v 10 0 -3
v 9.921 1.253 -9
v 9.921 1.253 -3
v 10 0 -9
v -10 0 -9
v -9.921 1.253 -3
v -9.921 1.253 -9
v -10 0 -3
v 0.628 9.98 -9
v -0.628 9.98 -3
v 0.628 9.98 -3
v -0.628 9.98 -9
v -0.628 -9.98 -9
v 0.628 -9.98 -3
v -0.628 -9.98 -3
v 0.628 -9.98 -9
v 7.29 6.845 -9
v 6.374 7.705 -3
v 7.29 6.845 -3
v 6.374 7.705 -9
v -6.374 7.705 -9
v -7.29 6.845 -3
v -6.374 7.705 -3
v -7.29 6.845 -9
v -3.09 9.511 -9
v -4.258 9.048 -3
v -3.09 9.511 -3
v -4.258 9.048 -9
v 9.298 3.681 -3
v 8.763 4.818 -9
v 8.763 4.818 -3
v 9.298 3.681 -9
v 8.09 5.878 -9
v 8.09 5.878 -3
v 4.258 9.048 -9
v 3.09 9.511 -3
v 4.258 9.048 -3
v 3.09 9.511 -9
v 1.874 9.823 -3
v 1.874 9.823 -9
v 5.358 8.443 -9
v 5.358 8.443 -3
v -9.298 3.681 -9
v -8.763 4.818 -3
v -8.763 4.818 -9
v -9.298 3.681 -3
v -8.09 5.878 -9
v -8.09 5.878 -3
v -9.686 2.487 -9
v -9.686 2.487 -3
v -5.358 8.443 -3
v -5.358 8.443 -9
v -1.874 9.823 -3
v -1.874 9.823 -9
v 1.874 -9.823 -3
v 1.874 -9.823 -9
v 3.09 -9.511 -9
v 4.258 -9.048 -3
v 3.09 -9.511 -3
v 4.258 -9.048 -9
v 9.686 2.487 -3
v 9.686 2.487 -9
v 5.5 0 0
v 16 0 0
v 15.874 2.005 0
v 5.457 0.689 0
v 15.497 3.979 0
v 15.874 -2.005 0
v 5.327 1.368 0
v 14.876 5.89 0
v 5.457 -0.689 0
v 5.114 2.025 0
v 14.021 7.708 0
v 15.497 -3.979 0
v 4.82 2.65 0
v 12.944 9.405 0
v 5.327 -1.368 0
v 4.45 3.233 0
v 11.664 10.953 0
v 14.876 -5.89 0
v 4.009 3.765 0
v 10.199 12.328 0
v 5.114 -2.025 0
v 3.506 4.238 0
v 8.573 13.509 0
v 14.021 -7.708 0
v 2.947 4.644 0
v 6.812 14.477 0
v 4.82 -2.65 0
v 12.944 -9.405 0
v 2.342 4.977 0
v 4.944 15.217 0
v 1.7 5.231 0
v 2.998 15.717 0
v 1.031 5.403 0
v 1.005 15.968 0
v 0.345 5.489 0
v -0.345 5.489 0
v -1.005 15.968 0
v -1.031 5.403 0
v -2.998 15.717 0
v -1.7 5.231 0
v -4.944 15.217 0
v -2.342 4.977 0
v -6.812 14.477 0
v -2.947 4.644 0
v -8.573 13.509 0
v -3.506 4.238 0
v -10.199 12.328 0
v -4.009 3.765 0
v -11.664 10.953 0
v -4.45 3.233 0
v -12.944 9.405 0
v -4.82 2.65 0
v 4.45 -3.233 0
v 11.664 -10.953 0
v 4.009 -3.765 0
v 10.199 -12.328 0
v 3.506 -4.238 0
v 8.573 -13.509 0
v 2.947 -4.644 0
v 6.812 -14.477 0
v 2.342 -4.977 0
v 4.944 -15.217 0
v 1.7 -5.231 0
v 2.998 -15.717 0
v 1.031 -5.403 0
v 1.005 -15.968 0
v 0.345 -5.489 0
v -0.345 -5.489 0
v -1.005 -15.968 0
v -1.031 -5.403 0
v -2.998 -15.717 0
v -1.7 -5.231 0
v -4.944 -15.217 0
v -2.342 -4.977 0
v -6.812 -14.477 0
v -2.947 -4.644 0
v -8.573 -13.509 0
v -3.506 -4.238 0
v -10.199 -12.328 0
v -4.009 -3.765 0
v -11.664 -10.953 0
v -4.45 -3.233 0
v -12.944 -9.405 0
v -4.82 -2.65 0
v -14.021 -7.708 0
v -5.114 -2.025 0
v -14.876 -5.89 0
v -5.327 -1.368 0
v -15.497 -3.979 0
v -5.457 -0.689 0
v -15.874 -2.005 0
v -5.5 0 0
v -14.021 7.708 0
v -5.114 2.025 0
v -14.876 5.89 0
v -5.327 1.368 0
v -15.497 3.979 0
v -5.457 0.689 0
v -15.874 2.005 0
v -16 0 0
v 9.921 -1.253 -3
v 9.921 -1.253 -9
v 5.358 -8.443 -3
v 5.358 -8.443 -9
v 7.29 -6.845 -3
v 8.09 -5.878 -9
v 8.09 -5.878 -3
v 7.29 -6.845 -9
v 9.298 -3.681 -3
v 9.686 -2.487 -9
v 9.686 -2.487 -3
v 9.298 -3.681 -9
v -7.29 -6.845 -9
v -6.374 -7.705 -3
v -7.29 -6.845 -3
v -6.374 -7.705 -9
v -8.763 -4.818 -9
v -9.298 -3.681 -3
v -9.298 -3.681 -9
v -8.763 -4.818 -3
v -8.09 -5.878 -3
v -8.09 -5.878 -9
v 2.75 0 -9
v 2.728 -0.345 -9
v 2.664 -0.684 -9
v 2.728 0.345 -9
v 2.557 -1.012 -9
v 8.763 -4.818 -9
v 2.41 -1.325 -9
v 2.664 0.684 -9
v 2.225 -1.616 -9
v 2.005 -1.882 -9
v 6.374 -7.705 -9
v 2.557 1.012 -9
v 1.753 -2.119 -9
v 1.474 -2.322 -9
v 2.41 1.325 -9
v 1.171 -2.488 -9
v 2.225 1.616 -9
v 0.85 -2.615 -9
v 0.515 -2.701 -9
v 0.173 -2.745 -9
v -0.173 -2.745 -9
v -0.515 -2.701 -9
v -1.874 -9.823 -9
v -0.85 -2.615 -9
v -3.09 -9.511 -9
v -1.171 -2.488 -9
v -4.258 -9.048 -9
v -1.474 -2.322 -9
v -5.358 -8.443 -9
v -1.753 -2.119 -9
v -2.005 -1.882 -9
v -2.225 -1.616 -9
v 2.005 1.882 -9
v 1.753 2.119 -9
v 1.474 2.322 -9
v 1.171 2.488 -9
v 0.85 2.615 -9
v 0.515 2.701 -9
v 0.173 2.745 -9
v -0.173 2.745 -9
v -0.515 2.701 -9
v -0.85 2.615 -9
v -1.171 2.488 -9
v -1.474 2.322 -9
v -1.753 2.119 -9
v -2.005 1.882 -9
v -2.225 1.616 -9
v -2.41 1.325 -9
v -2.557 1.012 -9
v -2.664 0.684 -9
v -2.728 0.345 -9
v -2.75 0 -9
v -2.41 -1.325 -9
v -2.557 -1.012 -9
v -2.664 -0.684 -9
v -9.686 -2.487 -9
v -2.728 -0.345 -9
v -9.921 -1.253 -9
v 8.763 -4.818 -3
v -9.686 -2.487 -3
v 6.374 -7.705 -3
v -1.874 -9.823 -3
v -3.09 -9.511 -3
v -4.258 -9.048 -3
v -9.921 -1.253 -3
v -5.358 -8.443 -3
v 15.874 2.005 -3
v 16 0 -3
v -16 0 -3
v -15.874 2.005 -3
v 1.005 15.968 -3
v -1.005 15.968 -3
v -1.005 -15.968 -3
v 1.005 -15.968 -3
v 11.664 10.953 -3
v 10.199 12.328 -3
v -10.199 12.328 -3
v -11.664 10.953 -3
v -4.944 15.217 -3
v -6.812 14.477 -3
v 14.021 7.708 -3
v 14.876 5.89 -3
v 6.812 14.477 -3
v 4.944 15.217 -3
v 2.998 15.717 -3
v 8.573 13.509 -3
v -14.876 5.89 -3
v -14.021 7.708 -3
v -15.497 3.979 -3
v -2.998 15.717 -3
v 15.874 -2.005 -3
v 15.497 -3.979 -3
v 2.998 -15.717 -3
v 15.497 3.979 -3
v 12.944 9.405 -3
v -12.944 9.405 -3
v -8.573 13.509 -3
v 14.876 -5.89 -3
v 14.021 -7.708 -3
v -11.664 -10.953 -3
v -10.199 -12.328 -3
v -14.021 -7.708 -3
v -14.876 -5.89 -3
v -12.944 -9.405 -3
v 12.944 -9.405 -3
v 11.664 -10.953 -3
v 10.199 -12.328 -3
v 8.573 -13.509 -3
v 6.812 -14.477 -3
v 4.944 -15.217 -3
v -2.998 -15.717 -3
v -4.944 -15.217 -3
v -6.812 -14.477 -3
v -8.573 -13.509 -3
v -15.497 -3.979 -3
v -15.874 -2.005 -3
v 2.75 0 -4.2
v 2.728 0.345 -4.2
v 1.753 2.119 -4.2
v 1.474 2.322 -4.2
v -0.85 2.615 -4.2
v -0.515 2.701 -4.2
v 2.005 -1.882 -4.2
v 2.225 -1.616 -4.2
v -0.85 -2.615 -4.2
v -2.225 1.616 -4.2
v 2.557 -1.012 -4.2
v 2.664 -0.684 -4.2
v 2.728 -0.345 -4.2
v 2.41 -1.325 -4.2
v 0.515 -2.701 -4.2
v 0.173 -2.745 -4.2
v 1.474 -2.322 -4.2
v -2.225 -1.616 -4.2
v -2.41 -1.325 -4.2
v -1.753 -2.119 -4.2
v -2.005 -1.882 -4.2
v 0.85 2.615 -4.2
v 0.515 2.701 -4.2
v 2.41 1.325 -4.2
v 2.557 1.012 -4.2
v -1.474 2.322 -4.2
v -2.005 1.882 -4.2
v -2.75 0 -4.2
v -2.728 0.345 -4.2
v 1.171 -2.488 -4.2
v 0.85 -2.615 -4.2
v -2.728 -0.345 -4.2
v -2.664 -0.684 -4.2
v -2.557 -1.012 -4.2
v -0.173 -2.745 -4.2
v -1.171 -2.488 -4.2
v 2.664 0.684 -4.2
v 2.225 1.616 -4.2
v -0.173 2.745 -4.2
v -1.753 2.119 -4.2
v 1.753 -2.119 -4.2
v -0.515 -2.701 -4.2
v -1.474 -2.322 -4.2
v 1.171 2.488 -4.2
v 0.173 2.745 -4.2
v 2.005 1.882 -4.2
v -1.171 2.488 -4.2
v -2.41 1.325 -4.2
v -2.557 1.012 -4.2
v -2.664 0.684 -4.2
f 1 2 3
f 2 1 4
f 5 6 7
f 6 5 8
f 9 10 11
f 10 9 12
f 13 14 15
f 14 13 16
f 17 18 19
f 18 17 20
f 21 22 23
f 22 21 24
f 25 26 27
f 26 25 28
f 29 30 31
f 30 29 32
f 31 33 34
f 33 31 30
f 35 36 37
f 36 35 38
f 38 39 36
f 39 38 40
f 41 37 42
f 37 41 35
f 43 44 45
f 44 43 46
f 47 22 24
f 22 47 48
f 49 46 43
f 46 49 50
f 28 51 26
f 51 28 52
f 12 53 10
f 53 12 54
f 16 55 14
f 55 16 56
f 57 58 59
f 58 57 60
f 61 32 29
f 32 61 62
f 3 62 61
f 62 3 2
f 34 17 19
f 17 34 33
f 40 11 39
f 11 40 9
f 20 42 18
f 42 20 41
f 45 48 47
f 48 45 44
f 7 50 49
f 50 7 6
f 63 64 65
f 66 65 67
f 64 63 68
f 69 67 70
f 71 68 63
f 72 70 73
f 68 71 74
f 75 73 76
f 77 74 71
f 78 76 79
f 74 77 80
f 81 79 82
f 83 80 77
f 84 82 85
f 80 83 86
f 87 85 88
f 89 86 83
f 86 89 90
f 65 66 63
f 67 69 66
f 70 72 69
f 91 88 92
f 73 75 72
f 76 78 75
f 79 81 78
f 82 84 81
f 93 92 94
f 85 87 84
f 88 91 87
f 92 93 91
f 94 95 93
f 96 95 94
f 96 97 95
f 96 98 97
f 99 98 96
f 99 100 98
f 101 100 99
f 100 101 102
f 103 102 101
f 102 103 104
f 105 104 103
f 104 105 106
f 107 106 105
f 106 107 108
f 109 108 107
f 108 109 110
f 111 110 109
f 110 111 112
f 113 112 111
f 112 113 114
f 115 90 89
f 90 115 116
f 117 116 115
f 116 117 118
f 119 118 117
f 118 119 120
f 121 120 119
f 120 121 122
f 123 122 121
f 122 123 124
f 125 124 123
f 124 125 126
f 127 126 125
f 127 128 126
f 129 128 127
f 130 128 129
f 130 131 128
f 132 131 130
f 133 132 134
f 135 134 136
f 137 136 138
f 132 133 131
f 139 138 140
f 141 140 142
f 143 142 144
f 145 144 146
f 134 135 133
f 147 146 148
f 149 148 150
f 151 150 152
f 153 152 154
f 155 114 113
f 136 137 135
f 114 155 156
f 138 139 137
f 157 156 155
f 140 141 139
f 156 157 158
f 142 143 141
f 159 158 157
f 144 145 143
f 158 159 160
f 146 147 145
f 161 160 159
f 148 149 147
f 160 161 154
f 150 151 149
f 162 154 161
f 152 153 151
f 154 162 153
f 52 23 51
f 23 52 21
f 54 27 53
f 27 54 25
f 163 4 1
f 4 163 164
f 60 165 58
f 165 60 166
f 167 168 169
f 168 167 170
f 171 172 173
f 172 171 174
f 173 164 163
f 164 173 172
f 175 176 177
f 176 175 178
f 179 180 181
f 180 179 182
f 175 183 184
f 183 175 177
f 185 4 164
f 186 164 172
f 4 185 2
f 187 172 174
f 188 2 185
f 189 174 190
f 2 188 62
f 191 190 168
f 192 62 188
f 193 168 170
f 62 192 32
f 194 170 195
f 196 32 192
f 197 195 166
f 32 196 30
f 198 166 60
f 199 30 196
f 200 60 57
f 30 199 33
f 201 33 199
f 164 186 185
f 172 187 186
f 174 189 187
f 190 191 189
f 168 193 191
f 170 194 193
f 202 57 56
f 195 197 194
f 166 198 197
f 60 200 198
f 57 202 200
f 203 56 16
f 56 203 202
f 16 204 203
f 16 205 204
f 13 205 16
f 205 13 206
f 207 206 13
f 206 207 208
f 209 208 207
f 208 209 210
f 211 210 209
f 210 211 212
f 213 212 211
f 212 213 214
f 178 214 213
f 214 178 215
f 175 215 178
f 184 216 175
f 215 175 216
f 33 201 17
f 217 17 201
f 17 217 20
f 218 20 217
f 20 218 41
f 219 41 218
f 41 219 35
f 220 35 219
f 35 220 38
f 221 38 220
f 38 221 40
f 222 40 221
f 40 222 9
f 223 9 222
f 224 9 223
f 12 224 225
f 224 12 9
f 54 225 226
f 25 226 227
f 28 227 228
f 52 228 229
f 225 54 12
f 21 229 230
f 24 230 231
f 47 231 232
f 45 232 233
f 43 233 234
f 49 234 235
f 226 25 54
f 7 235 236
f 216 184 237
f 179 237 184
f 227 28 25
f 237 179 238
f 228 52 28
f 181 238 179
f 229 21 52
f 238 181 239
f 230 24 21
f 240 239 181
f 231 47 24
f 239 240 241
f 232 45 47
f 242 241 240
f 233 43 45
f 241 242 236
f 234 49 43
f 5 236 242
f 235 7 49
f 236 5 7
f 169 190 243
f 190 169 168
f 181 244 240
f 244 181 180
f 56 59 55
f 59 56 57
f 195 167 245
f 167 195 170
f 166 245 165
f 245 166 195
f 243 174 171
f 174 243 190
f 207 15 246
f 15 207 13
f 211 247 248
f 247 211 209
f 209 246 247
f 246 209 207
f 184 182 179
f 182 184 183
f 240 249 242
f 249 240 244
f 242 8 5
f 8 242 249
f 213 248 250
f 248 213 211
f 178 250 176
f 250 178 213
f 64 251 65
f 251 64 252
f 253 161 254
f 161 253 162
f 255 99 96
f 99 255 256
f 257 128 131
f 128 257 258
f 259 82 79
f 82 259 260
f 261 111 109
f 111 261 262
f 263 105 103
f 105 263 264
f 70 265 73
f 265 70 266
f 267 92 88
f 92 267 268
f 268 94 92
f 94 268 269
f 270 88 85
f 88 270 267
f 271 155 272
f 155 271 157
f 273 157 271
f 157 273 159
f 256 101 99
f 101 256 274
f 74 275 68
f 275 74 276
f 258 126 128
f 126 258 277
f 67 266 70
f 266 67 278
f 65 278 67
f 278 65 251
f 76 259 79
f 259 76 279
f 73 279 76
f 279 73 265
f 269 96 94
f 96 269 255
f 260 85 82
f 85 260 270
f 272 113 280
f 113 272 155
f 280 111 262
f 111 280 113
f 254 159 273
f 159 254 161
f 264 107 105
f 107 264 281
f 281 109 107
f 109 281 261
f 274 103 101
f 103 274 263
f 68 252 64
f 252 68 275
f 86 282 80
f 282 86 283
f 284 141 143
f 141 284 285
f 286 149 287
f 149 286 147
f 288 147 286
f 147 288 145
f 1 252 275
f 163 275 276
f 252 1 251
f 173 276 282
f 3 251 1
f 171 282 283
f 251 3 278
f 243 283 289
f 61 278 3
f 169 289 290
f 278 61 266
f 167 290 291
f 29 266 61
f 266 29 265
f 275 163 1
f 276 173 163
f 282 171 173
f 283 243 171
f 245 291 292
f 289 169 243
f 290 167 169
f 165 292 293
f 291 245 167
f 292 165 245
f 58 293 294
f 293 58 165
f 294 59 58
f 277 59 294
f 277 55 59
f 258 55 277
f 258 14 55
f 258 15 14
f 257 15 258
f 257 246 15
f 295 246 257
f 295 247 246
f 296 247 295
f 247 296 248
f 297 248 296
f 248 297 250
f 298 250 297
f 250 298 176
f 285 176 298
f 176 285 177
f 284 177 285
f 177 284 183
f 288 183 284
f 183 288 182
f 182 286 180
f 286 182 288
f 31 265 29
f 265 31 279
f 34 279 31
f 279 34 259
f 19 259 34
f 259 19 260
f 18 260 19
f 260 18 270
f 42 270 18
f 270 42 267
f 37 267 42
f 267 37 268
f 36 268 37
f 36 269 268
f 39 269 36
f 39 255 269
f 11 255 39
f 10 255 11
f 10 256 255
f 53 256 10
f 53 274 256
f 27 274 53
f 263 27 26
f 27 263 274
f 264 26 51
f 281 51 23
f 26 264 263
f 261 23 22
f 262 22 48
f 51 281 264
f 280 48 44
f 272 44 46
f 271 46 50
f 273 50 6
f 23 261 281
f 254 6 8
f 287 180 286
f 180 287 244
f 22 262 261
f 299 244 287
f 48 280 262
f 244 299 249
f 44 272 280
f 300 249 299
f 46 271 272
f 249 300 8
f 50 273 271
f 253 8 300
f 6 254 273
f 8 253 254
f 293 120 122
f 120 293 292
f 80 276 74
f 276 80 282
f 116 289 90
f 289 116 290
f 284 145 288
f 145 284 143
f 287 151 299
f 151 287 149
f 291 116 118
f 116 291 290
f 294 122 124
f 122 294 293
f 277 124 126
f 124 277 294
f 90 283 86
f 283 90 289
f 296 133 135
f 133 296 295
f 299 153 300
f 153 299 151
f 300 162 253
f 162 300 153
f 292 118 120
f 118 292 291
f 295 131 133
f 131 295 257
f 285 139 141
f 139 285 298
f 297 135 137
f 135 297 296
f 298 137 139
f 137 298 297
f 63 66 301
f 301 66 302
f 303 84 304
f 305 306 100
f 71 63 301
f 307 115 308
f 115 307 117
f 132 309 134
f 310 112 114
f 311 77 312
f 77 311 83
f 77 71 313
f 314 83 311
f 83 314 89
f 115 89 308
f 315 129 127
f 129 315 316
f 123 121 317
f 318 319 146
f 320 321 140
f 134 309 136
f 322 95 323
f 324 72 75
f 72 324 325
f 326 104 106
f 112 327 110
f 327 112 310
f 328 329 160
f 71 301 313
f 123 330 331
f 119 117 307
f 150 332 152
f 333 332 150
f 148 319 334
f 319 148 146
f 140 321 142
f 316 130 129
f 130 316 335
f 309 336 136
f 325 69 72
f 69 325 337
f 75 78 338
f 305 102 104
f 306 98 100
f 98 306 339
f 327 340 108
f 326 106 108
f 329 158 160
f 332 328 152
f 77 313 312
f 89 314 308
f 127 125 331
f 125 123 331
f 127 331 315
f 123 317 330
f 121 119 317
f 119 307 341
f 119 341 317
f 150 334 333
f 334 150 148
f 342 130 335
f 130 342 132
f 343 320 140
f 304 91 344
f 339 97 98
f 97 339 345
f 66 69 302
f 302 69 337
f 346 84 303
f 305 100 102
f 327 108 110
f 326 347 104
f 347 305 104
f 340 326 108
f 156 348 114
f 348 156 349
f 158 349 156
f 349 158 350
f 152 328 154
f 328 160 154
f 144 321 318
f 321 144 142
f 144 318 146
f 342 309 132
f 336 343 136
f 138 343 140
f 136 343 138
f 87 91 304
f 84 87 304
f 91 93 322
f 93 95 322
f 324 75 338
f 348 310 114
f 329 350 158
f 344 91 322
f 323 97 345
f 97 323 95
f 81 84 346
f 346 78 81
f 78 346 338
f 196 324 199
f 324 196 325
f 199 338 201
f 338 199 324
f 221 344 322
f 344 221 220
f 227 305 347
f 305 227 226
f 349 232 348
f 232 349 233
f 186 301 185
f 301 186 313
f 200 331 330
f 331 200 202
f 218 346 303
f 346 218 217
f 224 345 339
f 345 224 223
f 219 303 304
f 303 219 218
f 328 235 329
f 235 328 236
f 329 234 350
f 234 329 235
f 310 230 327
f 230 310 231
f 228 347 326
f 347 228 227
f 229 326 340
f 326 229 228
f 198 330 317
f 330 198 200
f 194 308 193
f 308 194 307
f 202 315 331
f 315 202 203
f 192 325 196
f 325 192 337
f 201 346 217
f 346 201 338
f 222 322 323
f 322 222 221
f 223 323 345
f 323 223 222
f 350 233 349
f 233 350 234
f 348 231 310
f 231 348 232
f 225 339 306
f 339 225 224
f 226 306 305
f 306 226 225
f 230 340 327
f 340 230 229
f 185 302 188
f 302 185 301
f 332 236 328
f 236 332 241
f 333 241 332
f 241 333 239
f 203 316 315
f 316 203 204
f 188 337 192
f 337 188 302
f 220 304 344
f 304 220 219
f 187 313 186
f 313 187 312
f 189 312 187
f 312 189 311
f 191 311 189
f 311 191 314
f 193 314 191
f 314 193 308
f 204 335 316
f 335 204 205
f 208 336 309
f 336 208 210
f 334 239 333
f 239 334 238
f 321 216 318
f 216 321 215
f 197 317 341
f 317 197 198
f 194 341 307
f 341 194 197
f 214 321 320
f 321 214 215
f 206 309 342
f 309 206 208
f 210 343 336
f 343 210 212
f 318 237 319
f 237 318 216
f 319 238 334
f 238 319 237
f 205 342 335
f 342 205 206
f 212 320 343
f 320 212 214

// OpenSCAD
$fn = 50;


difference() {
	union() {
		translate(v = [0, 0, -9.0000000000]) {
			cylinder(h = 9, r = 10.0000000000);
		}
		translate(v = [0, 0, -3.0000000000]) {
			cylinder(h = 3, r = 16.0000000000);
		}
	}
	union() {
		translate(v = [0, 0, 0]) {
			rotate(a = [0, 0, 0]) {
				difference() {
					union() {
						#translate(v = [0, 0, -9.0000000000]) {
							cylinder(h = 9, r = 2.2500000000);
						}
						#translate(v = [0, 0, -4.2000000000]) {
							cylinder(h = 4.2000000000, r1 = 2.7500000000, r2 = 5.5000000000);
						}
						#translate(v = [0, 0, -9.0000000000]) {
							cylinder(h = 9, r = 2.7500000000);
						}
						#translate(v = [0, 0, -9.0000000000]) {
							cylinder(h = 9, r = 2.2500000000);
						}
					}
					union();
				}
			}
		}
	}
}
